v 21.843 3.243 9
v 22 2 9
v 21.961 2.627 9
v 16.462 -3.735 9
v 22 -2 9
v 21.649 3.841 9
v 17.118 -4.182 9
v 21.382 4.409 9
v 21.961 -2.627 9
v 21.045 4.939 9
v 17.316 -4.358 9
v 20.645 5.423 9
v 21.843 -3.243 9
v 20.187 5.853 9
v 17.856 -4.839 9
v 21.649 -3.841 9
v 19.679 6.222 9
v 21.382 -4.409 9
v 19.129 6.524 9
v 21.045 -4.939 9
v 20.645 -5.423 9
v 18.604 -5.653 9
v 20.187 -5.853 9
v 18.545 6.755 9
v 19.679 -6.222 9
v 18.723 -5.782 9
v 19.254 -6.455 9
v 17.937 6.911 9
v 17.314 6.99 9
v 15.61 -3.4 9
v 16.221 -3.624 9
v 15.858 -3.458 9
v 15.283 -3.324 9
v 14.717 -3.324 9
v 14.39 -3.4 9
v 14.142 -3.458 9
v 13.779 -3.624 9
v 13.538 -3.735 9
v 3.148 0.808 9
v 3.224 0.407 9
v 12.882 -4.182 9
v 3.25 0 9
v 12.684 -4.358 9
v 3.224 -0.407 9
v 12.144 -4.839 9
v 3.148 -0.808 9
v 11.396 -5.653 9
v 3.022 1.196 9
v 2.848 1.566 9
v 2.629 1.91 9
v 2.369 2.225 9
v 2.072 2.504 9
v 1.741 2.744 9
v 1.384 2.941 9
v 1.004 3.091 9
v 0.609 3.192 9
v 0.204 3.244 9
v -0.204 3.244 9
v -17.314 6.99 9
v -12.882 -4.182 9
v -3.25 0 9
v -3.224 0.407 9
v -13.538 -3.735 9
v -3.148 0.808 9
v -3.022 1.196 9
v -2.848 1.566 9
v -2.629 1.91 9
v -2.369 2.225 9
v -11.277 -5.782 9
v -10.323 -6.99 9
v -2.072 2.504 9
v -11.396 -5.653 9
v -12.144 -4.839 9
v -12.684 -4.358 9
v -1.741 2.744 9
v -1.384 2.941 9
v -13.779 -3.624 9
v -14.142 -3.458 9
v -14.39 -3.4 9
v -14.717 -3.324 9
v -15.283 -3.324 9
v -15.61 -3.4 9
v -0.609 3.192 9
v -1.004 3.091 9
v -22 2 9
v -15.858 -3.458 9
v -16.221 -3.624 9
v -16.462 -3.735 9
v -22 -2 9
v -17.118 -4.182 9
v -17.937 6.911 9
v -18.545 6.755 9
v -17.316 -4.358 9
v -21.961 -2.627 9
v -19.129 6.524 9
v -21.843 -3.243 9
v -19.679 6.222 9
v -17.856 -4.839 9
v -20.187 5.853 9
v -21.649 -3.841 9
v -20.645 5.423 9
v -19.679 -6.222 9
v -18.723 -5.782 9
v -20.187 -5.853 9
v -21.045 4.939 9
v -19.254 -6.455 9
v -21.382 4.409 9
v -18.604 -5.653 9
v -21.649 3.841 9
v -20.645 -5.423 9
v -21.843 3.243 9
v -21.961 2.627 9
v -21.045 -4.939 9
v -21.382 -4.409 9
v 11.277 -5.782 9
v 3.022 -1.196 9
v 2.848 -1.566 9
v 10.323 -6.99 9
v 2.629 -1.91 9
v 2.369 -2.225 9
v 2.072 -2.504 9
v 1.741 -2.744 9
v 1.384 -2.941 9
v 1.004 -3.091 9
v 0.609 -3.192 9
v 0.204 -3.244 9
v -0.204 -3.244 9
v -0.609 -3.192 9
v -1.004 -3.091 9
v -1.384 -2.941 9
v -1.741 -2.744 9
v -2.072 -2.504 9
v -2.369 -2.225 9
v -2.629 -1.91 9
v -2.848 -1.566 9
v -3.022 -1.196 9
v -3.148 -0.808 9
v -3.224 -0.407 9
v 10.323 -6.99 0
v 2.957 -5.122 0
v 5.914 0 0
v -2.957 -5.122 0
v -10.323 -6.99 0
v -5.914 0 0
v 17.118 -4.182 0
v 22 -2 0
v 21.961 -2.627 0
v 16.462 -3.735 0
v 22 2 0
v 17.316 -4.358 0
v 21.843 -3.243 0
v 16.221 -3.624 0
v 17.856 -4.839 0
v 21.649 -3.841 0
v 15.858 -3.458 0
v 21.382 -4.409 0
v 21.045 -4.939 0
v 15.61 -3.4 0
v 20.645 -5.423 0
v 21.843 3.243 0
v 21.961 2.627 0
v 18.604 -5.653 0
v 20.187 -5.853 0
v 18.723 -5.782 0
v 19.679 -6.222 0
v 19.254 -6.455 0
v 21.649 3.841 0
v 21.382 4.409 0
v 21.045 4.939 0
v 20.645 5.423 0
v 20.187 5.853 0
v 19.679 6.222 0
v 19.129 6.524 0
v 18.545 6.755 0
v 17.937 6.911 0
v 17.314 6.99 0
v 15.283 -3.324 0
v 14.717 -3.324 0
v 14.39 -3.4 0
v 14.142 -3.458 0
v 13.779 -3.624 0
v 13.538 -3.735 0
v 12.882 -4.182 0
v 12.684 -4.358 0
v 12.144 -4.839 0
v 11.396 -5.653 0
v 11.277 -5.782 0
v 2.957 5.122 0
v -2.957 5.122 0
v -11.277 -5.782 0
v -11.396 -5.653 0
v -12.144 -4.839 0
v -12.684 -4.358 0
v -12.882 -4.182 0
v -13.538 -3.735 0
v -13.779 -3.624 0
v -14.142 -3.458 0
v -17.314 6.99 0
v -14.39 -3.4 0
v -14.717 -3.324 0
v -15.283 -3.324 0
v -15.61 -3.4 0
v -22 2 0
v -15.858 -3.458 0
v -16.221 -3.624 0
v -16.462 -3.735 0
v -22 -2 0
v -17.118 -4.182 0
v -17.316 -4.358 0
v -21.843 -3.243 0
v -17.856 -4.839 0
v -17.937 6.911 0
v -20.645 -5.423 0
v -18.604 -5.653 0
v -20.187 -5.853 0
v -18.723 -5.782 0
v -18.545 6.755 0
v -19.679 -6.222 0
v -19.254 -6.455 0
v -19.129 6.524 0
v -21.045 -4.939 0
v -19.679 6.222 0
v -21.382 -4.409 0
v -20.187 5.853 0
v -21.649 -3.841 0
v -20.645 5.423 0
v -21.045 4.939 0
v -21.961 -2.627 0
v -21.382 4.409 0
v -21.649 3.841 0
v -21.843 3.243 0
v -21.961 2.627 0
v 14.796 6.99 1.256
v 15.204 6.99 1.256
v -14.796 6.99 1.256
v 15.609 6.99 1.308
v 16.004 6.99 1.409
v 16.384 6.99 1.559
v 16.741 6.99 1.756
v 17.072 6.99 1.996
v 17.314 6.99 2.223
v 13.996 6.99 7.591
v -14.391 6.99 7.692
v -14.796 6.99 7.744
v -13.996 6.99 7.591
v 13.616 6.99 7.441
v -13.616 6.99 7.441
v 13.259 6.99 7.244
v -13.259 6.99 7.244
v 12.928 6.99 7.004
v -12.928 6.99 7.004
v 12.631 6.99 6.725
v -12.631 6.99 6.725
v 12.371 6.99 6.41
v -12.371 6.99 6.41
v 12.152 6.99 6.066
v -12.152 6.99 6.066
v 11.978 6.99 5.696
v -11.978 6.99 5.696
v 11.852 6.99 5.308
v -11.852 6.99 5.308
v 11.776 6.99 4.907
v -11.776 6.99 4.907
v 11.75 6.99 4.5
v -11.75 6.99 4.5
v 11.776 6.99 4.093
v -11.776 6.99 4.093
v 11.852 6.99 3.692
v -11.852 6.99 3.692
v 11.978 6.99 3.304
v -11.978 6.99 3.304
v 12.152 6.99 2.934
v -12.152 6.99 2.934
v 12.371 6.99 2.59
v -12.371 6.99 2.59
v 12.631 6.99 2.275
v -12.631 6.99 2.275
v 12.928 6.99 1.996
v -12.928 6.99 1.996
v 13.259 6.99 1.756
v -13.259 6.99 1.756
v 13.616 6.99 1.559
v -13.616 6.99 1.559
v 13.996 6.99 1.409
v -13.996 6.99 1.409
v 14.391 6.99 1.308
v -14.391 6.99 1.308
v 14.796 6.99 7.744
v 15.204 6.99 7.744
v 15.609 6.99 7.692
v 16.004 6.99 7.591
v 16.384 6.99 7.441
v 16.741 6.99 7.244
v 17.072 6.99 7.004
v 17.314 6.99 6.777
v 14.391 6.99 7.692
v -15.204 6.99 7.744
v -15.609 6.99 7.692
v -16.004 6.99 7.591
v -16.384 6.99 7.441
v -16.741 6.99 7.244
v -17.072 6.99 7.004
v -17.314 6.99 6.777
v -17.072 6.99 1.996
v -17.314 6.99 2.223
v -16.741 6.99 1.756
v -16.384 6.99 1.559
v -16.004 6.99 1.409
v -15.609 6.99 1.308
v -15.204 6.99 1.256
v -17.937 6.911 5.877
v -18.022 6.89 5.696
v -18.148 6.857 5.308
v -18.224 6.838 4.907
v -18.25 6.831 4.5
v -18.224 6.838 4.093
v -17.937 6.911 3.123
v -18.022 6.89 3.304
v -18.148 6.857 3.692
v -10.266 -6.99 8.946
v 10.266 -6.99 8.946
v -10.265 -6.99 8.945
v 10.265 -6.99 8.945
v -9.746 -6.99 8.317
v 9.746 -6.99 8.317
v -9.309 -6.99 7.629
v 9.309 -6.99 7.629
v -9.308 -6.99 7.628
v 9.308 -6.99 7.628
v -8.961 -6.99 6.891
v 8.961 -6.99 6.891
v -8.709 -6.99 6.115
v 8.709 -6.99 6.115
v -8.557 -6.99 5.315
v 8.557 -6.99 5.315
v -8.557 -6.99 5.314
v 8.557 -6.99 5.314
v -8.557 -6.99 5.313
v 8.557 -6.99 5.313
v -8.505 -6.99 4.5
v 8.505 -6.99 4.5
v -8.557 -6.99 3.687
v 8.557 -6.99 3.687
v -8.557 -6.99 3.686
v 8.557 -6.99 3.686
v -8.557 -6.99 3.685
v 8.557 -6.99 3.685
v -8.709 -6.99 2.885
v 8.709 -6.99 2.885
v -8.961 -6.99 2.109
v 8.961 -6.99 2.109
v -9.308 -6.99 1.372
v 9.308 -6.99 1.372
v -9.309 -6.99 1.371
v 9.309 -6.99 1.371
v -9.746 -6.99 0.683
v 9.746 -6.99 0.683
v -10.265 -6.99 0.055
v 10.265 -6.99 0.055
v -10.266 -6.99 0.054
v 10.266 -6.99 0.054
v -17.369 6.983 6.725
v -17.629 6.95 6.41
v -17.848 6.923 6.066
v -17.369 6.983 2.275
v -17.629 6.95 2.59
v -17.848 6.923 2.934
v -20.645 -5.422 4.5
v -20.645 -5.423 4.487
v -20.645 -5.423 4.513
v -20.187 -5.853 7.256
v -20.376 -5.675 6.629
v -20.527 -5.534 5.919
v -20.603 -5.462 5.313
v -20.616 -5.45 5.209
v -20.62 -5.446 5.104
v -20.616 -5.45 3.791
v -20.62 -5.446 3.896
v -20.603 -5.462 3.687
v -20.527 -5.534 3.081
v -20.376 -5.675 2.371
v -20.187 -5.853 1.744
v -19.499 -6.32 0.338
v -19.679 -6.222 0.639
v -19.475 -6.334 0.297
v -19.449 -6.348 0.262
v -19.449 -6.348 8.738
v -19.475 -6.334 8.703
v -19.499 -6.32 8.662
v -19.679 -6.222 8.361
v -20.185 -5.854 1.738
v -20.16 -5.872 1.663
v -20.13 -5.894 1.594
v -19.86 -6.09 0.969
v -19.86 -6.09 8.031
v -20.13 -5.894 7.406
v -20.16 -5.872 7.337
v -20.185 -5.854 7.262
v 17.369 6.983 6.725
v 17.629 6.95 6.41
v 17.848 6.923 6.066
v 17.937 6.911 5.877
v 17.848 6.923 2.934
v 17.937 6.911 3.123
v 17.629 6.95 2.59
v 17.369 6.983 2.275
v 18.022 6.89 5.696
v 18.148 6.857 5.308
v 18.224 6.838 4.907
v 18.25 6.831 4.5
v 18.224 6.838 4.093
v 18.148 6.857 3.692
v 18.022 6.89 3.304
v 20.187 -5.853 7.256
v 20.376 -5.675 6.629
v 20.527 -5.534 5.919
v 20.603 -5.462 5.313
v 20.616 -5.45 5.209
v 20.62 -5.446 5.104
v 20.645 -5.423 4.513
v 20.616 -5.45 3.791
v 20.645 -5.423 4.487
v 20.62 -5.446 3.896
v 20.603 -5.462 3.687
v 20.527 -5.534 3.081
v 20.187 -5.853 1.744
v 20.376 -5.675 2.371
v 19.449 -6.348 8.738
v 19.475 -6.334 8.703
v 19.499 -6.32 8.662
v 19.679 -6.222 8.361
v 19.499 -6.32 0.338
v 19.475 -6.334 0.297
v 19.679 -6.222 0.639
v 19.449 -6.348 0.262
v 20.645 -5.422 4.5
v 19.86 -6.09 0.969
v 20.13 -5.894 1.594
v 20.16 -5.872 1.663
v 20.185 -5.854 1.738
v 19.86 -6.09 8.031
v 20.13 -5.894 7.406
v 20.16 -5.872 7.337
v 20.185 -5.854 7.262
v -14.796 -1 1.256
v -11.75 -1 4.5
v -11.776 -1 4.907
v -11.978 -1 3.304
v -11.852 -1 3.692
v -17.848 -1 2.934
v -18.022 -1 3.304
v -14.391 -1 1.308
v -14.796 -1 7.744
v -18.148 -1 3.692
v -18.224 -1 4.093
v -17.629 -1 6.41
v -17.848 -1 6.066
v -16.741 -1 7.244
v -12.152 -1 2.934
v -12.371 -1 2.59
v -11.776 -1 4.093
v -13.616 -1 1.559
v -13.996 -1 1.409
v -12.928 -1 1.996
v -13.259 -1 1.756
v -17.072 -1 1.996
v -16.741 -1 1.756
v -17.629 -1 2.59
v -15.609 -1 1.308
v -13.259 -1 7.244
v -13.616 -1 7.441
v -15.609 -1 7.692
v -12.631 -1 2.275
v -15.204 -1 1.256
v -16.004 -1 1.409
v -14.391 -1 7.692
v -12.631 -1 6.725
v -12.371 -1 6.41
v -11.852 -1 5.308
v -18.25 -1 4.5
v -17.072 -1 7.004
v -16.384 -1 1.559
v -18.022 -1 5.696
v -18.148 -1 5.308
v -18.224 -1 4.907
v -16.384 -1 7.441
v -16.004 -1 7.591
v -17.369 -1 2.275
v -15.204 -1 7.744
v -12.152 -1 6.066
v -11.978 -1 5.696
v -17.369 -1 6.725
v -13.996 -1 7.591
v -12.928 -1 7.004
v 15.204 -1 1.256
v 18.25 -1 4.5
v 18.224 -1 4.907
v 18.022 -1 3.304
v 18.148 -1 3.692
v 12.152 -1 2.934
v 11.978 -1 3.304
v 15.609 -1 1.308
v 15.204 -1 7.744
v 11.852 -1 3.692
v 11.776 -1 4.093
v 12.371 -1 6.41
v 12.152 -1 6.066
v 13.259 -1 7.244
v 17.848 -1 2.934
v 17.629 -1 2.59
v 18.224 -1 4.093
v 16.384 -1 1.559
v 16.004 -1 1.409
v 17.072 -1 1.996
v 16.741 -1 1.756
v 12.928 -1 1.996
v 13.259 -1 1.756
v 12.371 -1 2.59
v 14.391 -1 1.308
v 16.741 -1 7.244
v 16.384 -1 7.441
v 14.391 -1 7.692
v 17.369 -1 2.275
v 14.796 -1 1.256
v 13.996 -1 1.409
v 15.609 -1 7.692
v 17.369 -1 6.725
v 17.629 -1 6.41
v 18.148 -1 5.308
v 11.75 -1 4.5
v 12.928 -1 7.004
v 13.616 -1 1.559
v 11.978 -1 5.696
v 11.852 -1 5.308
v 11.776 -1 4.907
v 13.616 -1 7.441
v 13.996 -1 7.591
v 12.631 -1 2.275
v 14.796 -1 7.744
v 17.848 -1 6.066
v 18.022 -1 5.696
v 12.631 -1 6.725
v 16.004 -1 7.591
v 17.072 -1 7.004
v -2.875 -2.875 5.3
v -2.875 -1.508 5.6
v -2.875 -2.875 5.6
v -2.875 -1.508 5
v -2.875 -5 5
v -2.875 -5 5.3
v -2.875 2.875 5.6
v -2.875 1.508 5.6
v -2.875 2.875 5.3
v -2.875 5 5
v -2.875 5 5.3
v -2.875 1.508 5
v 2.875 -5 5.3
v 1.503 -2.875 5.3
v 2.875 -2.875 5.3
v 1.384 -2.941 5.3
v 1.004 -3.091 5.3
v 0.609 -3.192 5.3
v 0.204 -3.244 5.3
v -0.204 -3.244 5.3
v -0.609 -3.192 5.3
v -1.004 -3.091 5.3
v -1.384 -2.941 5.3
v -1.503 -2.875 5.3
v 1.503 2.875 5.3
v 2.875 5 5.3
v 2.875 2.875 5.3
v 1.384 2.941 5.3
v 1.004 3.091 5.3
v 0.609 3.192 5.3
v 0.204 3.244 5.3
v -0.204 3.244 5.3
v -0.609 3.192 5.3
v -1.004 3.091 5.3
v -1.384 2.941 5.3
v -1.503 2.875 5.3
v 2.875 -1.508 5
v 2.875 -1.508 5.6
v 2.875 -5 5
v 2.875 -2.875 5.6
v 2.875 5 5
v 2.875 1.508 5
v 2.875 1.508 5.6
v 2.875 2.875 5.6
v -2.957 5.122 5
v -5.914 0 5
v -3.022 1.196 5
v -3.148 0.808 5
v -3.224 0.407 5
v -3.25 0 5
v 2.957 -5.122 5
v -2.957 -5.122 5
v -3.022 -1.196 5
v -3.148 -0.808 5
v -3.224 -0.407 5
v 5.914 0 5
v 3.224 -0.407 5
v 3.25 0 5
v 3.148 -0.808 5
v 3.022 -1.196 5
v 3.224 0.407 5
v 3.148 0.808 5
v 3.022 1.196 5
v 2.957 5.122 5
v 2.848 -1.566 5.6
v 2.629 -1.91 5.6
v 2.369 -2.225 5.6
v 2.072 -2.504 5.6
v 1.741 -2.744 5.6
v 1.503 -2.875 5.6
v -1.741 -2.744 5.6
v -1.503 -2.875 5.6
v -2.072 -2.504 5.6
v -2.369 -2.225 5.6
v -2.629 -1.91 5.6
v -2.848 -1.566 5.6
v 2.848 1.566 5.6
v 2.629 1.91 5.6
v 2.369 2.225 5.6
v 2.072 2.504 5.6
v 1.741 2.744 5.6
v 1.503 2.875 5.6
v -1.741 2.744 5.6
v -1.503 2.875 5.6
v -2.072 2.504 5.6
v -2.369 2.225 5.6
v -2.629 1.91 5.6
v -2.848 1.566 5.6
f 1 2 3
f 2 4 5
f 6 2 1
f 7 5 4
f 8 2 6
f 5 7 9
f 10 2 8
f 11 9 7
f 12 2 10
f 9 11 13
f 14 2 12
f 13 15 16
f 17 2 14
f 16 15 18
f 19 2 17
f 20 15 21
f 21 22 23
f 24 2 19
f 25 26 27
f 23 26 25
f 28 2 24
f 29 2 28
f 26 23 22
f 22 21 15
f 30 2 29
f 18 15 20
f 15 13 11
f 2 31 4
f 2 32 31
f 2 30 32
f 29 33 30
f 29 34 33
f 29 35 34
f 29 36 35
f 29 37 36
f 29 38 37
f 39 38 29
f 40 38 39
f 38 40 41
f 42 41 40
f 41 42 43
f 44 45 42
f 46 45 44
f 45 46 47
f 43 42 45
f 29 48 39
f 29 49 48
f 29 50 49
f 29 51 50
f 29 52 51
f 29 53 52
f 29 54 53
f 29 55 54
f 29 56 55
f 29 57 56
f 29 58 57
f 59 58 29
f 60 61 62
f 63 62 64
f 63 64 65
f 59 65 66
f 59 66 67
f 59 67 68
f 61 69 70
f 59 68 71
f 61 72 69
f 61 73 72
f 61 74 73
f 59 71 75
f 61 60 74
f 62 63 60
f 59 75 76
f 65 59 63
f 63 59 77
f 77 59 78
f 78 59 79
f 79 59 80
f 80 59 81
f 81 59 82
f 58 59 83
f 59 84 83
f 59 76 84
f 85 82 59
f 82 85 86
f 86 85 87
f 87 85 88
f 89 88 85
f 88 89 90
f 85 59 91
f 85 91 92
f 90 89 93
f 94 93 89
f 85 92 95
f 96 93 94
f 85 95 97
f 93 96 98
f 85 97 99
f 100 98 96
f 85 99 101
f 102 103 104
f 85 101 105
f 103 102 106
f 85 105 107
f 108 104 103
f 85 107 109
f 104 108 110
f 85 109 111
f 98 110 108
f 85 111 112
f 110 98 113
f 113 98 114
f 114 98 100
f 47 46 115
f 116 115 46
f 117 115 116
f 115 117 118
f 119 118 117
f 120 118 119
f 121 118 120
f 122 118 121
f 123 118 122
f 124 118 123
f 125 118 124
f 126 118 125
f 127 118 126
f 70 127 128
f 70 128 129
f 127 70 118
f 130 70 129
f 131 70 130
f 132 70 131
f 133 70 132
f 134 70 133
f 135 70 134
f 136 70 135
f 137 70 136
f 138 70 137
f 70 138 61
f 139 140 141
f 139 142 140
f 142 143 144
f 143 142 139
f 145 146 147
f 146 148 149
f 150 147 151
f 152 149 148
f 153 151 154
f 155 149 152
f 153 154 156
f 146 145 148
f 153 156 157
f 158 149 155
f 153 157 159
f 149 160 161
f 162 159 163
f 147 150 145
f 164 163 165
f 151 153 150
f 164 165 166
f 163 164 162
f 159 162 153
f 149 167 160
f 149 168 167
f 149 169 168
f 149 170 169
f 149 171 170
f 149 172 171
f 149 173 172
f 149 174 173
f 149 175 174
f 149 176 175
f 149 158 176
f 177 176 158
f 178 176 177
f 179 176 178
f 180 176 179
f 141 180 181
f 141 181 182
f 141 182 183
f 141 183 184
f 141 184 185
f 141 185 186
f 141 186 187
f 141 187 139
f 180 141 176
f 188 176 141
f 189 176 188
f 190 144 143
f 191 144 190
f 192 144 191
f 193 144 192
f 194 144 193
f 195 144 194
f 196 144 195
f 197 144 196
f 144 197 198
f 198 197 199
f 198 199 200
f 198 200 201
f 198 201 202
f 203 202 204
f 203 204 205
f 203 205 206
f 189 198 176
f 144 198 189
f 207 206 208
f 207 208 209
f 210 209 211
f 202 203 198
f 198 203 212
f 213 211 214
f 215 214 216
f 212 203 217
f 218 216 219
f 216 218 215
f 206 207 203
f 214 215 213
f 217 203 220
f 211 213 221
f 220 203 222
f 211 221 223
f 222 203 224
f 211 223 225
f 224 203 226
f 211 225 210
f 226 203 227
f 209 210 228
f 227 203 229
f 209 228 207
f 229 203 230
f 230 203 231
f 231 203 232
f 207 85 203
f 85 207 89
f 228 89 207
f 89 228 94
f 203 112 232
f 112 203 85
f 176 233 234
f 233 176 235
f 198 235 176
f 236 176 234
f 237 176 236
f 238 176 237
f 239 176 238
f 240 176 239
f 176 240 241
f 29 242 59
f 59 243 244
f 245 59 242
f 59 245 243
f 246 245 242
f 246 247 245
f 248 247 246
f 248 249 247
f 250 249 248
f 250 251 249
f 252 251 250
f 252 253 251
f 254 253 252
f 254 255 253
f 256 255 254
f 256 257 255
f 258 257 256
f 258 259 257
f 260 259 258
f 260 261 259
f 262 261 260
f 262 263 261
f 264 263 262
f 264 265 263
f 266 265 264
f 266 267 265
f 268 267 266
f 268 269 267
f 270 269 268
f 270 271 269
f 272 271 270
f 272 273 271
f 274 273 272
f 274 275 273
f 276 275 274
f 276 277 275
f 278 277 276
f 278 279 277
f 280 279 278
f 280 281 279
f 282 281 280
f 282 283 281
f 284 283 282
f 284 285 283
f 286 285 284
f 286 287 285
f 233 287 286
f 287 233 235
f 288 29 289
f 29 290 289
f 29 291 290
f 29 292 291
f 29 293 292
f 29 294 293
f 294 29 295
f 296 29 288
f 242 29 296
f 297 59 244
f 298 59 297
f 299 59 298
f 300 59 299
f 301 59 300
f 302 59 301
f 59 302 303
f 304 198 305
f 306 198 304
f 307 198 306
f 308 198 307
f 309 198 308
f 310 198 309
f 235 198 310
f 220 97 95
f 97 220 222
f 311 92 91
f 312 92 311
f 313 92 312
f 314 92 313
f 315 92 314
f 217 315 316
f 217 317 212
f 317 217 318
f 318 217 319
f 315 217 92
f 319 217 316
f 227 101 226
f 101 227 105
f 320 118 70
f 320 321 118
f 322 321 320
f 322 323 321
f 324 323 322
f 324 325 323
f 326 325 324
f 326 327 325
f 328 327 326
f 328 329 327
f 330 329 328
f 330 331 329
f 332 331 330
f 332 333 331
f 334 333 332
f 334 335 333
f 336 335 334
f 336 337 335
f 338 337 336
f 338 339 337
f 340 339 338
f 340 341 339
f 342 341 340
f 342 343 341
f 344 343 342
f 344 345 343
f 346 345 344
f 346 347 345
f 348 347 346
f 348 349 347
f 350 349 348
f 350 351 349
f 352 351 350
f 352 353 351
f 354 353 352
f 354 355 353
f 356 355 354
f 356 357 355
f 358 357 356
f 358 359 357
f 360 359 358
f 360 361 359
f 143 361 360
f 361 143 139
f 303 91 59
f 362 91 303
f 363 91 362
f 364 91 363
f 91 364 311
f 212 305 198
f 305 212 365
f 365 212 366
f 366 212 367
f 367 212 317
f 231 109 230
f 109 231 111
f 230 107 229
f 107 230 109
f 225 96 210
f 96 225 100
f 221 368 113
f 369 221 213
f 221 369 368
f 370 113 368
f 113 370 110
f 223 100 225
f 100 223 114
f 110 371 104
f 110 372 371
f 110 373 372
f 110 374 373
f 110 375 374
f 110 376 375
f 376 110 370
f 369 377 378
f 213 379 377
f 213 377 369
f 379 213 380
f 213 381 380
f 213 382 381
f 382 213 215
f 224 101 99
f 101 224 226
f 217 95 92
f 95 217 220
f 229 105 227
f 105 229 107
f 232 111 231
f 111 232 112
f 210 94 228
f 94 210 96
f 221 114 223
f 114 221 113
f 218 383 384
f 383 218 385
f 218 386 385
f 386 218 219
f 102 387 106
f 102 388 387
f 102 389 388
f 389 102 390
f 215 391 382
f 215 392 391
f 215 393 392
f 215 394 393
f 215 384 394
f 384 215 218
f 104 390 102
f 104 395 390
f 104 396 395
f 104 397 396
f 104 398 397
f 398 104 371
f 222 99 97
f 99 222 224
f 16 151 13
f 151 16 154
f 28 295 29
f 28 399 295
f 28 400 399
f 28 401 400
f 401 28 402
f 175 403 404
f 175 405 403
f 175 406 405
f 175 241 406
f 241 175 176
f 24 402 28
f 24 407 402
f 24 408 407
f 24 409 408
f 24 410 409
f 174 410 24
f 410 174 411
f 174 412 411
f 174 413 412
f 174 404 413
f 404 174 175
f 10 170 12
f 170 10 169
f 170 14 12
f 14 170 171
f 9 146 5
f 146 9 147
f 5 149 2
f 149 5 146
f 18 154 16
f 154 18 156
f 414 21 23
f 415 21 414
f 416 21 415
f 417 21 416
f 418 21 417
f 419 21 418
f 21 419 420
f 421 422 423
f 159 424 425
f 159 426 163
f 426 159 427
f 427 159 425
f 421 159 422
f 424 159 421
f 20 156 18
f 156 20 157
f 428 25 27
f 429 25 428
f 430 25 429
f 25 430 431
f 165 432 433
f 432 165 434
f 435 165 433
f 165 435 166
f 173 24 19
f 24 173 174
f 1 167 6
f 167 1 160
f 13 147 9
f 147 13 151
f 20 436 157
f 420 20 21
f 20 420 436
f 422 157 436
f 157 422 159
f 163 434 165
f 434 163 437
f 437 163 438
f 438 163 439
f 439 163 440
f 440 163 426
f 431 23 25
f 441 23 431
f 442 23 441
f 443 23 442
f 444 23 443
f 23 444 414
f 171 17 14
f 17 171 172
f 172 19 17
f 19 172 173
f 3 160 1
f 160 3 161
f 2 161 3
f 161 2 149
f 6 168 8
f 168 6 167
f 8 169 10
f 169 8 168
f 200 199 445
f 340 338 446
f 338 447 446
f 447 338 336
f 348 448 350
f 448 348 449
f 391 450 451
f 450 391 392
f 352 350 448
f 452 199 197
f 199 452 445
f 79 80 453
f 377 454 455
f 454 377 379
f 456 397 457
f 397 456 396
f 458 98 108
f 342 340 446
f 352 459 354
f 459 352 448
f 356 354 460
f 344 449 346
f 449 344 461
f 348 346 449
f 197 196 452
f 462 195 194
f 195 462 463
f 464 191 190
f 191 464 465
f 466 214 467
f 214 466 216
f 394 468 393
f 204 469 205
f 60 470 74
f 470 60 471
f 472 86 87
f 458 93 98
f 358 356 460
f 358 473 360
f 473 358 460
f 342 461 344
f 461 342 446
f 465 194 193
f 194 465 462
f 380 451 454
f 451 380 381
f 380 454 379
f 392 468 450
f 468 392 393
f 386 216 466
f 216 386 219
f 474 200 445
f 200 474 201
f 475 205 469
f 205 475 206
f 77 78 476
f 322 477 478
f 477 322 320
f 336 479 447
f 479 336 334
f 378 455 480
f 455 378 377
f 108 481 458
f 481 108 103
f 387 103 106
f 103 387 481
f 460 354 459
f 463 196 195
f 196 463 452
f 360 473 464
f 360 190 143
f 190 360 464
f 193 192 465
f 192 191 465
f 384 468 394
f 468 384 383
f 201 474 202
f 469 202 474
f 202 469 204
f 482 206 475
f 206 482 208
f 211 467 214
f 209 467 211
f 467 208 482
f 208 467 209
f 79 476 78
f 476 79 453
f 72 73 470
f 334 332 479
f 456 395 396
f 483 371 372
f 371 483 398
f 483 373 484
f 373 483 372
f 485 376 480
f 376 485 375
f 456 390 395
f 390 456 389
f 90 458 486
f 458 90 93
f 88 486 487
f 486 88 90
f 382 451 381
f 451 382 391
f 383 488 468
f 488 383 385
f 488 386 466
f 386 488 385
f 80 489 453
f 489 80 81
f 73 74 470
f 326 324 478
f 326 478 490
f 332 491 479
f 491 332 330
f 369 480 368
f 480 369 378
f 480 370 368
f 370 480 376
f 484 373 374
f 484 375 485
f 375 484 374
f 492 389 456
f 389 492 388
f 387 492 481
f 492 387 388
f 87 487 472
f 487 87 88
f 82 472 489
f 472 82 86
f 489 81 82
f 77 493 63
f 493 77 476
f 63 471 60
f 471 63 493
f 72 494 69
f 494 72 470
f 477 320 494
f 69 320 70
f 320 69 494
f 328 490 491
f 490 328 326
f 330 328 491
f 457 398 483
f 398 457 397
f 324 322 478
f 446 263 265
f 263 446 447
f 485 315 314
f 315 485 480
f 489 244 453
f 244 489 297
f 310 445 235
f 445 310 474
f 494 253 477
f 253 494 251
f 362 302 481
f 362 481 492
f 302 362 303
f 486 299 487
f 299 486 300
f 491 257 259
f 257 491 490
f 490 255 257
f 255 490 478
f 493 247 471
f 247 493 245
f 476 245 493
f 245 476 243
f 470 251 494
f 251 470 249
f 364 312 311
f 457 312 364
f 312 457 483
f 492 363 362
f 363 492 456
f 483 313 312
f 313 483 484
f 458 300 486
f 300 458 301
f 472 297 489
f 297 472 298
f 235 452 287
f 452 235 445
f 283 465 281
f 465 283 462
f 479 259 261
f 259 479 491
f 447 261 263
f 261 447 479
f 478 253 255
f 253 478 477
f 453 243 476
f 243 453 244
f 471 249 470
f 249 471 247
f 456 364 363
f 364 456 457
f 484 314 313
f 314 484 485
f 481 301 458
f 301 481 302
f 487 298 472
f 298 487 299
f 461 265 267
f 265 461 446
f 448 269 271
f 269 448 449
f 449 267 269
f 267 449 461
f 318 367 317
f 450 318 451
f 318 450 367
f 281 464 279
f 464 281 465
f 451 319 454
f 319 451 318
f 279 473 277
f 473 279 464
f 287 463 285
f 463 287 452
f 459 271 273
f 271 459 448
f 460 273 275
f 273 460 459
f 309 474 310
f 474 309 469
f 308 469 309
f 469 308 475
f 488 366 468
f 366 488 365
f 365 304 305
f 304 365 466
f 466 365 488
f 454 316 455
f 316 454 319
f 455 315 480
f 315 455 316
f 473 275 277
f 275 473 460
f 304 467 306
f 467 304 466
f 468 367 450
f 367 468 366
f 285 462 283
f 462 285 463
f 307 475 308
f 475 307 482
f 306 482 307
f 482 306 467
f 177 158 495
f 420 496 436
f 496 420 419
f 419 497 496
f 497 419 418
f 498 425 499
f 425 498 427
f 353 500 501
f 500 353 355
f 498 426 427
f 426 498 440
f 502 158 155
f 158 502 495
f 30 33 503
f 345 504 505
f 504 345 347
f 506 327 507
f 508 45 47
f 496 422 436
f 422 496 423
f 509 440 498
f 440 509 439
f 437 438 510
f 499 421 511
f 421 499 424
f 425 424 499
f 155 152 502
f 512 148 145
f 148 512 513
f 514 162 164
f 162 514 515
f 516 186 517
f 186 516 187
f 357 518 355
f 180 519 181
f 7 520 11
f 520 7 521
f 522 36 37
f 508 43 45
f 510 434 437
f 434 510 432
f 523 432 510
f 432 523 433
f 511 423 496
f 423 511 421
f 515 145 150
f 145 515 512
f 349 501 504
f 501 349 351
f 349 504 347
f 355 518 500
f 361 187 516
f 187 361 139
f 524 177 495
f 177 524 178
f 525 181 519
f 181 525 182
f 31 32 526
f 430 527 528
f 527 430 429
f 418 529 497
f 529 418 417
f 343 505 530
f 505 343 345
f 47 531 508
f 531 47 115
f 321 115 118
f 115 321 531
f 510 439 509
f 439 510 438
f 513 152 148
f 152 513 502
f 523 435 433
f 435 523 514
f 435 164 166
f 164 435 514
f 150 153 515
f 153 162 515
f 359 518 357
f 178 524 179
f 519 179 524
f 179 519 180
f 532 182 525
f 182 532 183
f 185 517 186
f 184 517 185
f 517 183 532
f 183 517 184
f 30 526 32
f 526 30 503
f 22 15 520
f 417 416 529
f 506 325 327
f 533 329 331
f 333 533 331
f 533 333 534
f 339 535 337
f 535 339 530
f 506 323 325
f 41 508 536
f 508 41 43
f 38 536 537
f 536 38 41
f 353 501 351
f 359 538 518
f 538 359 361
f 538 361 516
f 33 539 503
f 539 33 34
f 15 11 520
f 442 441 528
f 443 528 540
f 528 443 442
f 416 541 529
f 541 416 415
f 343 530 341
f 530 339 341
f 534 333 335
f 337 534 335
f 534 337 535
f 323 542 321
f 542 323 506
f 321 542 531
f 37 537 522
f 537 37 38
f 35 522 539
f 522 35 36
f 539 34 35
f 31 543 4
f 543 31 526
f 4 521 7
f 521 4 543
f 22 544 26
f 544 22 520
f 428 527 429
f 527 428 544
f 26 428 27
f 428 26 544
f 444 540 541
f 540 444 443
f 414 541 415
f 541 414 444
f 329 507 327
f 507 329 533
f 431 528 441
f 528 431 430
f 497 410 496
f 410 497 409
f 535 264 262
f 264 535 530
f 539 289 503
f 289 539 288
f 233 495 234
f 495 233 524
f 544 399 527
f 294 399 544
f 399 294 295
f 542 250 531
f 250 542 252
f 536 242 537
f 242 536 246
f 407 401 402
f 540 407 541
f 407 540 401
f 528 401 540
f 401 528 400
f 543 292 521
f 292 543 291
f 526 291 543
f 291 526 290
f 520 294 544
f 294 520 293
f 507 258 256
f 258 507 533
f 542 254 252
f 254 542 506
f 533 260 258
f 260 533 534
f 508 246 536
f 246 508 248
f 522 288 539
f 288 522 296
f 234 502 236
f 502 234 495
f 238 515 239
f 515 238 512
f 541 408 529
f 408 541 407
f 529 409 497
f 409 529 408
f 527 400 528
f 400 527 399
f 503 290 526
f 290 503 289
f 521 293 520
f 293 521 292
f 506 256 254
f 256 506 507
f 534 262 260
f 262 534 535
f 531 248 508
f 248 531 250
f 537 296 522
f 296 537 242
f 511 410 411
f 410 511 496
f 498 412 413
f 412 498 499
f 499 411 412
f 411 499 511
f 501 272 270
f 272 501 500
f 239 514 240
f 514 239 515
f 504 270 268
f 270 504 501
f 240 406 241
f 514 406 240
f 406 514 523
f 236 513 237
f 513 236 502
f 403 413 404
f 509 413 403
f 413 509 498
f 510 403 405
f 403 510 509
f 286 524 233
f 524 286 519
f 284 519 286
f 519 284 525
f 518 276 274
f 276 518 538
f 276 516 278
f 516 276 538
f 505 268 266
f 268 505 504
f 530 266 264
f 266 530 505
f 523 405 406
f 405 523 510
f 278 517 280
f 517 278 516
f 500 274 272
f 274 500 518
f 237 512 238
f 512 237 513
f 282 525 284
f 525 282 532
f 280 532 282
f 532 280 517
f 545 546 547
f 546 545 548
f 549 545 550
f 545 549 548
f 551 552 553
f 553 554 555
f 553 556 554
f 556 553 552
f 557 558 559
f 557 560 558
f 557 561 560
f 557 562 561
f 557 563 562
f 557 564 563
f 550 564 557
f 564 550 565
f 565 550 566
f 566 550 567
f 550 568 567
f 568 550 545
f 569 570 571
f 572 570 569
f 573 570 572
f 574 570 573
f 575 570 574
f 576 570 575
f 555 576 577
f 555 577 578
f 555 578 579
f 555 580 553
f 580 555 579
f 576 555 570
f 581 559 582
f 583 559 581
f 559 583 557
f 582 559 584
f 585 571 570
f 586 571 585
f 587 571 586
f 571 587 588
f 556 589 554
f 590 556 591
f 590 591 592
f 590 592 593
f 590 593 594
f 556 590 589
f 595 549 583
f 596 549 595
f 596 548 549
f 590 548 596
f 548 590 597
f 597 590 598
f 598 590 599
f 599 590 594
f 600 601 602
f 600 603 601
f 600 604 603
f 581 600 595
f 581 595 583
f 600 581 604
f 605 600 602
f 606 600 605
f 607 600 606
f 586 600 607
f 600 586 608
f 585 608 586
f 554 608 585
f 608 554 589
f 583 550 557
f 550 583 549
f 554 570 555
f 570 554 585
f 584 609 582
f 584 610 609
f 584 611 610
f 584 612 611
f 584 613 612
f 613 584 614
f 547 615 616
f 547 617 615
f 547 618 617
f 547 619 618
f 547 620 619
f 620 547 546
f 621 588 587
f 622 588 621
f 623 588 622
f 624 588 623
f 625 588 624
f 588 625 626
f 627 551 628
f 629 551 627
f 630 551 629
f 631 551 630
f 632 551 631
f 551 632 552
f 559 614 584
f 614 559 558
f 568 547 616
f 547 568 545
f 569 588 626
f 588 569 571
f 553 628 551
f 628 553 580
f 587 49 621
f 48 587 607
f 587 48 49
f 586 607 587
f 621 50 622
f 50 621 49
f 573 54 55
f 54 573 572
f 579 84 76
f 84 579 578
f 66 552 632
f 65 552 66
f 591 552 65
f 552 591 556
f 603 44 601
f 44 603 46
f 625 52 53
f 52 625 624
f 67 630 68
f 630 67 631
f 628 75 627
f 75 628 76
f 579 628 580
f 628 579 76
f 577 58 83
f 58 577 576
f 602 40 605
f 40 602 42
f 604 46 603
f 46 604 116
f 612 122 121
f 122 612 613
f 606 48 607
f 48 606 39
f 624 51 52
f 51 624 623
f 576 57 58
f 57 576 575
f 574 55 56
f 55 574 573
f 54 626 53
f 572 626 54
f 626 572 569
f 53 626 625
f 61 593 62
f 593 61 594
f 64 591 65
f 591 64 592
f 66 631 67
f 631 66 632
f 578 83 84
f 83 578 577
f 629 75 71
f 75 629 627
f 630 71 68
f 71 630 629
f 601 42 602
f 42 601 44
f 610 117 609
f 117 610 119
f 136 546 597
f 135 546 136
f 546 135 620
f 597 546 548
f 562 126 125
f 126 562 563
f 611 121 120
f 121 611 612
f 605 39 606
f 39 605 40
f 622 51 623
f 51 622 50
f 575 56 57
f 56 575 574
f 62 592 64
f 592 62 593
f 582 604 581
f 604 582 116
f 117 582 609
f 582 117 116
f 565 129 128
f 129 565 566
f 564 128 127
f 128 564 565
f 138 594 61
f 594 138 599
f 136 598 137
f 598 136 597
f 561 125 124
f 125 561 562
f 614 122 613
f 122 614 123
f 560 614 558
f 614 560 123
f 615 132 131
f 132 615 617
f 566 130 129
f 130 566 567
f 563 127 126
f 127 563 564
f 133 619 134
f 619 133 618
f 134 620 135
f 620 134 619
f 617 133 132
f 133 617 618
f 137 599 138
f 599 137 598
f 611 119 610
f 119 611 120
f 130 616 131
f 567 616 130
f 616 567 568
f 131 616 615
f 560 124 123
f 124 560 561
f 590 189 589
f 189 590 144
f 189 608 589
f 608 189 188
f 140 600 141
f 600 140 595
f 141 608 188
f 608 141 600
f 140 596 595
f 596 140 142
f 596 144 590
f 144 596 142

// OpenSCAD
$fn = 50;


difference() {
	union() {
		cylinder(h = 9, r = 7.0000000000);
		translate(v = [-7.5000000000, 0.0000000000, 0]) {
			hull() {
				translate(v = [-9.5000000000, 2.0000000000, 0]) {
					cylinder(h = 9, r = 5);
				}
				translate(v = [9.5000000000, 2.0000000000, 0]) {
					cylinder(h = 9, r = 5);
				}
				translate(v = [-9.5000000000, -2.0000000000, 0]) {
					cylinder(h = 9, r = 5);
				}
				translate(v = [9.5000000000, -2.0000000000, 0]) {
					cylinder(h = 9, r = 5);
				}
			}
		}
		translate(v = [7.5000000000, 0.0000000000, 0]) {
			hull() {
				translate(v = [-9.5000000000, 2.0000000000, 0]) {
					cylinder(h = 9, r = 5);
				}
				translate(v = [9.5000000000, 2.0000000000, 0]) {
					cylinder(h = 9, r = 5);
				}
				translate(v = [-9.5000000000, -2.0000000000, 0]) {
					cylinder(h = 9, r = 5);
				}
				translate(v = [9.5000000000, -2.0000000000, 0]) {
					cylinder(h = 9, r = 5);
				}
			}
		}
	}
	union() {
		translate(v = [-15.0000000000, -7.0000000000, 4.5000000000]) {
			rotate(a = [90, 0, 0]) {
				difference() {
					union() {
						#translate(v = [0, 0, -14.0000000000]) {
							cylinder(h = 14, r = 2.2500000000);
						}
						#translate(v = [0, 0, -6]) {
							cylinder(h = 6, r1 = 3.2500000000, r2 = 6.5000000000);
						}
						#translate(v = [0, 0, -14.0000000000]) {
							cylinder(h = 14, r = 3.2500000000);
						}
						#translate(v = [0, 0, -14.0000000000]) {
							cylinder(h = 14, r = 2.2500000000);
						}
					}
					union();
				}
			}
		}
		translate(v = [15.0000000000, -7.0000000000, 4.5000000000]) {
			rotate(a = [90, 0, 0]) {
				difference() {
					union() {
						#translate(v = [0, 0, -14.0000000000]) {
							cylinder(h = 14, r = 2.2500000000);
						}
						#translate(v = [0, 0, -6]) {
							cylinder(h = 6, r1 = 3.2500000000, r2 = 6.5000000000);
						}
						#translate(v = [0, 0, -14.0000000000]) {
							cylinder(h = 14, r = 3.2500000000);
						}
						#translate(v = [0, 0, -14.0000000000]) {
							cylinder(h = 14, r = 2.2500000000);
						}
					}
					union();
				}
			}
		}
		translate(v = [0.0000000000, 0.0000000000, 0]) {
			rotate(a = [0, 0, 0]) {
				difference() {
					union() {
						#translate(v = [-2.8750000000, -5.0000000000, -0.3000000000]) {
							cube(size = [5.7500000000, 10, 0.3000000000]);
						}
						#translate(v = [-2.8750000000, -2.8750000000, -0.6000000000]) {
							cube(size = [5.7500000000, 5.7500000000, 0.3000000000]);
						}
						#translate(v = [-2.8750000000, -5.0000000000, 5]) {
							cube(size = [5.7500000000, 10, 0.3000000000]);
						}
						#translate(v = [-2.8750000000, -2.8750000000, 5.3000000000]) {
							cube(size = [5.7500000000, 5.7500000000, 0.3000000000]);
						}
						#translate(v = [0, 0, -100.0000000000]) {
							cylinder(h = 200, r = 3.2500000000);
						}
						#linear_extrude(height = 5) {
							polygon(points = [[5.9142500000, 0.0000000000], [2.9571250000, 5.1218907443], [-2.9571250000, 5.1218907443], [-5.9142500000, 0.0000000000], [-2.9571250000, -5.1218907443], [2.9571250000, -5.1218907443]]);
						}
						#translate(v = [-2.8750000000, -5.0000000000, -0.3000000000]) {
							cube(size = [5.7500000000, 10, 0.3000000000]);
						}
						#translate(v = [-2.8750000000, -2.8750000000, -0.6000000000]) {
							cube(size = [5.7500000000, 5.7500000000, 0.3000000000]);
						}
						#translate(v = [-2.8750000000, -5.0000000000, 5]) {
							cube(size = [5.7500000000, 10, 0.3000000000]);
						}
						#translate(v = [-2.8750000000, -2.8750000000, 5.3000000000]) {
							cube(size = [5.7500000000, 5.7500000000, 0.3000000000]);
						}
						#translate(v = [0, 0, -100.0000000000]) {
							cylinder(h = 200, r = 3.2500000000);
						}
						#translate(v = [-2.8750000000, -5.0000000000, -0.3000000000]) {
							cube(size = [5.7500000000, 10, 0.3000000000]);
						}
						#translate(v = [-2.8750000000, -2.8750000000, -0.6000000000]) {
							cube(size = [5.7500000000, 5.7500000000, 0.3000000000]);
						}
						#translate(v = [-2.8750000000, -5.0000000000, 5]) {
							cube(size = [5.7500000000, 10, 0.3000000000]);
						}
						#translate(v = [-2.8750000000, -2.8750000000, 5.3000000000]) {
							cube(size = [5.7500000000, 5.7500000000, 0.3000000000]);
						}
						#translate(v = [0, 0, -100.0000000000]) {
							cylinder(h = 200, r = 3.2500000000);
						}
					}
					union();
				}
			}
		}
		translate(v = [0, 0, -100]) {
			cylinder(h = 200, r = 3.2500000000);
		}
		translate(v = [0, 0, -100]) {
			cylinder(h = 200, r = 1.8000000000);
		}
	}
}
